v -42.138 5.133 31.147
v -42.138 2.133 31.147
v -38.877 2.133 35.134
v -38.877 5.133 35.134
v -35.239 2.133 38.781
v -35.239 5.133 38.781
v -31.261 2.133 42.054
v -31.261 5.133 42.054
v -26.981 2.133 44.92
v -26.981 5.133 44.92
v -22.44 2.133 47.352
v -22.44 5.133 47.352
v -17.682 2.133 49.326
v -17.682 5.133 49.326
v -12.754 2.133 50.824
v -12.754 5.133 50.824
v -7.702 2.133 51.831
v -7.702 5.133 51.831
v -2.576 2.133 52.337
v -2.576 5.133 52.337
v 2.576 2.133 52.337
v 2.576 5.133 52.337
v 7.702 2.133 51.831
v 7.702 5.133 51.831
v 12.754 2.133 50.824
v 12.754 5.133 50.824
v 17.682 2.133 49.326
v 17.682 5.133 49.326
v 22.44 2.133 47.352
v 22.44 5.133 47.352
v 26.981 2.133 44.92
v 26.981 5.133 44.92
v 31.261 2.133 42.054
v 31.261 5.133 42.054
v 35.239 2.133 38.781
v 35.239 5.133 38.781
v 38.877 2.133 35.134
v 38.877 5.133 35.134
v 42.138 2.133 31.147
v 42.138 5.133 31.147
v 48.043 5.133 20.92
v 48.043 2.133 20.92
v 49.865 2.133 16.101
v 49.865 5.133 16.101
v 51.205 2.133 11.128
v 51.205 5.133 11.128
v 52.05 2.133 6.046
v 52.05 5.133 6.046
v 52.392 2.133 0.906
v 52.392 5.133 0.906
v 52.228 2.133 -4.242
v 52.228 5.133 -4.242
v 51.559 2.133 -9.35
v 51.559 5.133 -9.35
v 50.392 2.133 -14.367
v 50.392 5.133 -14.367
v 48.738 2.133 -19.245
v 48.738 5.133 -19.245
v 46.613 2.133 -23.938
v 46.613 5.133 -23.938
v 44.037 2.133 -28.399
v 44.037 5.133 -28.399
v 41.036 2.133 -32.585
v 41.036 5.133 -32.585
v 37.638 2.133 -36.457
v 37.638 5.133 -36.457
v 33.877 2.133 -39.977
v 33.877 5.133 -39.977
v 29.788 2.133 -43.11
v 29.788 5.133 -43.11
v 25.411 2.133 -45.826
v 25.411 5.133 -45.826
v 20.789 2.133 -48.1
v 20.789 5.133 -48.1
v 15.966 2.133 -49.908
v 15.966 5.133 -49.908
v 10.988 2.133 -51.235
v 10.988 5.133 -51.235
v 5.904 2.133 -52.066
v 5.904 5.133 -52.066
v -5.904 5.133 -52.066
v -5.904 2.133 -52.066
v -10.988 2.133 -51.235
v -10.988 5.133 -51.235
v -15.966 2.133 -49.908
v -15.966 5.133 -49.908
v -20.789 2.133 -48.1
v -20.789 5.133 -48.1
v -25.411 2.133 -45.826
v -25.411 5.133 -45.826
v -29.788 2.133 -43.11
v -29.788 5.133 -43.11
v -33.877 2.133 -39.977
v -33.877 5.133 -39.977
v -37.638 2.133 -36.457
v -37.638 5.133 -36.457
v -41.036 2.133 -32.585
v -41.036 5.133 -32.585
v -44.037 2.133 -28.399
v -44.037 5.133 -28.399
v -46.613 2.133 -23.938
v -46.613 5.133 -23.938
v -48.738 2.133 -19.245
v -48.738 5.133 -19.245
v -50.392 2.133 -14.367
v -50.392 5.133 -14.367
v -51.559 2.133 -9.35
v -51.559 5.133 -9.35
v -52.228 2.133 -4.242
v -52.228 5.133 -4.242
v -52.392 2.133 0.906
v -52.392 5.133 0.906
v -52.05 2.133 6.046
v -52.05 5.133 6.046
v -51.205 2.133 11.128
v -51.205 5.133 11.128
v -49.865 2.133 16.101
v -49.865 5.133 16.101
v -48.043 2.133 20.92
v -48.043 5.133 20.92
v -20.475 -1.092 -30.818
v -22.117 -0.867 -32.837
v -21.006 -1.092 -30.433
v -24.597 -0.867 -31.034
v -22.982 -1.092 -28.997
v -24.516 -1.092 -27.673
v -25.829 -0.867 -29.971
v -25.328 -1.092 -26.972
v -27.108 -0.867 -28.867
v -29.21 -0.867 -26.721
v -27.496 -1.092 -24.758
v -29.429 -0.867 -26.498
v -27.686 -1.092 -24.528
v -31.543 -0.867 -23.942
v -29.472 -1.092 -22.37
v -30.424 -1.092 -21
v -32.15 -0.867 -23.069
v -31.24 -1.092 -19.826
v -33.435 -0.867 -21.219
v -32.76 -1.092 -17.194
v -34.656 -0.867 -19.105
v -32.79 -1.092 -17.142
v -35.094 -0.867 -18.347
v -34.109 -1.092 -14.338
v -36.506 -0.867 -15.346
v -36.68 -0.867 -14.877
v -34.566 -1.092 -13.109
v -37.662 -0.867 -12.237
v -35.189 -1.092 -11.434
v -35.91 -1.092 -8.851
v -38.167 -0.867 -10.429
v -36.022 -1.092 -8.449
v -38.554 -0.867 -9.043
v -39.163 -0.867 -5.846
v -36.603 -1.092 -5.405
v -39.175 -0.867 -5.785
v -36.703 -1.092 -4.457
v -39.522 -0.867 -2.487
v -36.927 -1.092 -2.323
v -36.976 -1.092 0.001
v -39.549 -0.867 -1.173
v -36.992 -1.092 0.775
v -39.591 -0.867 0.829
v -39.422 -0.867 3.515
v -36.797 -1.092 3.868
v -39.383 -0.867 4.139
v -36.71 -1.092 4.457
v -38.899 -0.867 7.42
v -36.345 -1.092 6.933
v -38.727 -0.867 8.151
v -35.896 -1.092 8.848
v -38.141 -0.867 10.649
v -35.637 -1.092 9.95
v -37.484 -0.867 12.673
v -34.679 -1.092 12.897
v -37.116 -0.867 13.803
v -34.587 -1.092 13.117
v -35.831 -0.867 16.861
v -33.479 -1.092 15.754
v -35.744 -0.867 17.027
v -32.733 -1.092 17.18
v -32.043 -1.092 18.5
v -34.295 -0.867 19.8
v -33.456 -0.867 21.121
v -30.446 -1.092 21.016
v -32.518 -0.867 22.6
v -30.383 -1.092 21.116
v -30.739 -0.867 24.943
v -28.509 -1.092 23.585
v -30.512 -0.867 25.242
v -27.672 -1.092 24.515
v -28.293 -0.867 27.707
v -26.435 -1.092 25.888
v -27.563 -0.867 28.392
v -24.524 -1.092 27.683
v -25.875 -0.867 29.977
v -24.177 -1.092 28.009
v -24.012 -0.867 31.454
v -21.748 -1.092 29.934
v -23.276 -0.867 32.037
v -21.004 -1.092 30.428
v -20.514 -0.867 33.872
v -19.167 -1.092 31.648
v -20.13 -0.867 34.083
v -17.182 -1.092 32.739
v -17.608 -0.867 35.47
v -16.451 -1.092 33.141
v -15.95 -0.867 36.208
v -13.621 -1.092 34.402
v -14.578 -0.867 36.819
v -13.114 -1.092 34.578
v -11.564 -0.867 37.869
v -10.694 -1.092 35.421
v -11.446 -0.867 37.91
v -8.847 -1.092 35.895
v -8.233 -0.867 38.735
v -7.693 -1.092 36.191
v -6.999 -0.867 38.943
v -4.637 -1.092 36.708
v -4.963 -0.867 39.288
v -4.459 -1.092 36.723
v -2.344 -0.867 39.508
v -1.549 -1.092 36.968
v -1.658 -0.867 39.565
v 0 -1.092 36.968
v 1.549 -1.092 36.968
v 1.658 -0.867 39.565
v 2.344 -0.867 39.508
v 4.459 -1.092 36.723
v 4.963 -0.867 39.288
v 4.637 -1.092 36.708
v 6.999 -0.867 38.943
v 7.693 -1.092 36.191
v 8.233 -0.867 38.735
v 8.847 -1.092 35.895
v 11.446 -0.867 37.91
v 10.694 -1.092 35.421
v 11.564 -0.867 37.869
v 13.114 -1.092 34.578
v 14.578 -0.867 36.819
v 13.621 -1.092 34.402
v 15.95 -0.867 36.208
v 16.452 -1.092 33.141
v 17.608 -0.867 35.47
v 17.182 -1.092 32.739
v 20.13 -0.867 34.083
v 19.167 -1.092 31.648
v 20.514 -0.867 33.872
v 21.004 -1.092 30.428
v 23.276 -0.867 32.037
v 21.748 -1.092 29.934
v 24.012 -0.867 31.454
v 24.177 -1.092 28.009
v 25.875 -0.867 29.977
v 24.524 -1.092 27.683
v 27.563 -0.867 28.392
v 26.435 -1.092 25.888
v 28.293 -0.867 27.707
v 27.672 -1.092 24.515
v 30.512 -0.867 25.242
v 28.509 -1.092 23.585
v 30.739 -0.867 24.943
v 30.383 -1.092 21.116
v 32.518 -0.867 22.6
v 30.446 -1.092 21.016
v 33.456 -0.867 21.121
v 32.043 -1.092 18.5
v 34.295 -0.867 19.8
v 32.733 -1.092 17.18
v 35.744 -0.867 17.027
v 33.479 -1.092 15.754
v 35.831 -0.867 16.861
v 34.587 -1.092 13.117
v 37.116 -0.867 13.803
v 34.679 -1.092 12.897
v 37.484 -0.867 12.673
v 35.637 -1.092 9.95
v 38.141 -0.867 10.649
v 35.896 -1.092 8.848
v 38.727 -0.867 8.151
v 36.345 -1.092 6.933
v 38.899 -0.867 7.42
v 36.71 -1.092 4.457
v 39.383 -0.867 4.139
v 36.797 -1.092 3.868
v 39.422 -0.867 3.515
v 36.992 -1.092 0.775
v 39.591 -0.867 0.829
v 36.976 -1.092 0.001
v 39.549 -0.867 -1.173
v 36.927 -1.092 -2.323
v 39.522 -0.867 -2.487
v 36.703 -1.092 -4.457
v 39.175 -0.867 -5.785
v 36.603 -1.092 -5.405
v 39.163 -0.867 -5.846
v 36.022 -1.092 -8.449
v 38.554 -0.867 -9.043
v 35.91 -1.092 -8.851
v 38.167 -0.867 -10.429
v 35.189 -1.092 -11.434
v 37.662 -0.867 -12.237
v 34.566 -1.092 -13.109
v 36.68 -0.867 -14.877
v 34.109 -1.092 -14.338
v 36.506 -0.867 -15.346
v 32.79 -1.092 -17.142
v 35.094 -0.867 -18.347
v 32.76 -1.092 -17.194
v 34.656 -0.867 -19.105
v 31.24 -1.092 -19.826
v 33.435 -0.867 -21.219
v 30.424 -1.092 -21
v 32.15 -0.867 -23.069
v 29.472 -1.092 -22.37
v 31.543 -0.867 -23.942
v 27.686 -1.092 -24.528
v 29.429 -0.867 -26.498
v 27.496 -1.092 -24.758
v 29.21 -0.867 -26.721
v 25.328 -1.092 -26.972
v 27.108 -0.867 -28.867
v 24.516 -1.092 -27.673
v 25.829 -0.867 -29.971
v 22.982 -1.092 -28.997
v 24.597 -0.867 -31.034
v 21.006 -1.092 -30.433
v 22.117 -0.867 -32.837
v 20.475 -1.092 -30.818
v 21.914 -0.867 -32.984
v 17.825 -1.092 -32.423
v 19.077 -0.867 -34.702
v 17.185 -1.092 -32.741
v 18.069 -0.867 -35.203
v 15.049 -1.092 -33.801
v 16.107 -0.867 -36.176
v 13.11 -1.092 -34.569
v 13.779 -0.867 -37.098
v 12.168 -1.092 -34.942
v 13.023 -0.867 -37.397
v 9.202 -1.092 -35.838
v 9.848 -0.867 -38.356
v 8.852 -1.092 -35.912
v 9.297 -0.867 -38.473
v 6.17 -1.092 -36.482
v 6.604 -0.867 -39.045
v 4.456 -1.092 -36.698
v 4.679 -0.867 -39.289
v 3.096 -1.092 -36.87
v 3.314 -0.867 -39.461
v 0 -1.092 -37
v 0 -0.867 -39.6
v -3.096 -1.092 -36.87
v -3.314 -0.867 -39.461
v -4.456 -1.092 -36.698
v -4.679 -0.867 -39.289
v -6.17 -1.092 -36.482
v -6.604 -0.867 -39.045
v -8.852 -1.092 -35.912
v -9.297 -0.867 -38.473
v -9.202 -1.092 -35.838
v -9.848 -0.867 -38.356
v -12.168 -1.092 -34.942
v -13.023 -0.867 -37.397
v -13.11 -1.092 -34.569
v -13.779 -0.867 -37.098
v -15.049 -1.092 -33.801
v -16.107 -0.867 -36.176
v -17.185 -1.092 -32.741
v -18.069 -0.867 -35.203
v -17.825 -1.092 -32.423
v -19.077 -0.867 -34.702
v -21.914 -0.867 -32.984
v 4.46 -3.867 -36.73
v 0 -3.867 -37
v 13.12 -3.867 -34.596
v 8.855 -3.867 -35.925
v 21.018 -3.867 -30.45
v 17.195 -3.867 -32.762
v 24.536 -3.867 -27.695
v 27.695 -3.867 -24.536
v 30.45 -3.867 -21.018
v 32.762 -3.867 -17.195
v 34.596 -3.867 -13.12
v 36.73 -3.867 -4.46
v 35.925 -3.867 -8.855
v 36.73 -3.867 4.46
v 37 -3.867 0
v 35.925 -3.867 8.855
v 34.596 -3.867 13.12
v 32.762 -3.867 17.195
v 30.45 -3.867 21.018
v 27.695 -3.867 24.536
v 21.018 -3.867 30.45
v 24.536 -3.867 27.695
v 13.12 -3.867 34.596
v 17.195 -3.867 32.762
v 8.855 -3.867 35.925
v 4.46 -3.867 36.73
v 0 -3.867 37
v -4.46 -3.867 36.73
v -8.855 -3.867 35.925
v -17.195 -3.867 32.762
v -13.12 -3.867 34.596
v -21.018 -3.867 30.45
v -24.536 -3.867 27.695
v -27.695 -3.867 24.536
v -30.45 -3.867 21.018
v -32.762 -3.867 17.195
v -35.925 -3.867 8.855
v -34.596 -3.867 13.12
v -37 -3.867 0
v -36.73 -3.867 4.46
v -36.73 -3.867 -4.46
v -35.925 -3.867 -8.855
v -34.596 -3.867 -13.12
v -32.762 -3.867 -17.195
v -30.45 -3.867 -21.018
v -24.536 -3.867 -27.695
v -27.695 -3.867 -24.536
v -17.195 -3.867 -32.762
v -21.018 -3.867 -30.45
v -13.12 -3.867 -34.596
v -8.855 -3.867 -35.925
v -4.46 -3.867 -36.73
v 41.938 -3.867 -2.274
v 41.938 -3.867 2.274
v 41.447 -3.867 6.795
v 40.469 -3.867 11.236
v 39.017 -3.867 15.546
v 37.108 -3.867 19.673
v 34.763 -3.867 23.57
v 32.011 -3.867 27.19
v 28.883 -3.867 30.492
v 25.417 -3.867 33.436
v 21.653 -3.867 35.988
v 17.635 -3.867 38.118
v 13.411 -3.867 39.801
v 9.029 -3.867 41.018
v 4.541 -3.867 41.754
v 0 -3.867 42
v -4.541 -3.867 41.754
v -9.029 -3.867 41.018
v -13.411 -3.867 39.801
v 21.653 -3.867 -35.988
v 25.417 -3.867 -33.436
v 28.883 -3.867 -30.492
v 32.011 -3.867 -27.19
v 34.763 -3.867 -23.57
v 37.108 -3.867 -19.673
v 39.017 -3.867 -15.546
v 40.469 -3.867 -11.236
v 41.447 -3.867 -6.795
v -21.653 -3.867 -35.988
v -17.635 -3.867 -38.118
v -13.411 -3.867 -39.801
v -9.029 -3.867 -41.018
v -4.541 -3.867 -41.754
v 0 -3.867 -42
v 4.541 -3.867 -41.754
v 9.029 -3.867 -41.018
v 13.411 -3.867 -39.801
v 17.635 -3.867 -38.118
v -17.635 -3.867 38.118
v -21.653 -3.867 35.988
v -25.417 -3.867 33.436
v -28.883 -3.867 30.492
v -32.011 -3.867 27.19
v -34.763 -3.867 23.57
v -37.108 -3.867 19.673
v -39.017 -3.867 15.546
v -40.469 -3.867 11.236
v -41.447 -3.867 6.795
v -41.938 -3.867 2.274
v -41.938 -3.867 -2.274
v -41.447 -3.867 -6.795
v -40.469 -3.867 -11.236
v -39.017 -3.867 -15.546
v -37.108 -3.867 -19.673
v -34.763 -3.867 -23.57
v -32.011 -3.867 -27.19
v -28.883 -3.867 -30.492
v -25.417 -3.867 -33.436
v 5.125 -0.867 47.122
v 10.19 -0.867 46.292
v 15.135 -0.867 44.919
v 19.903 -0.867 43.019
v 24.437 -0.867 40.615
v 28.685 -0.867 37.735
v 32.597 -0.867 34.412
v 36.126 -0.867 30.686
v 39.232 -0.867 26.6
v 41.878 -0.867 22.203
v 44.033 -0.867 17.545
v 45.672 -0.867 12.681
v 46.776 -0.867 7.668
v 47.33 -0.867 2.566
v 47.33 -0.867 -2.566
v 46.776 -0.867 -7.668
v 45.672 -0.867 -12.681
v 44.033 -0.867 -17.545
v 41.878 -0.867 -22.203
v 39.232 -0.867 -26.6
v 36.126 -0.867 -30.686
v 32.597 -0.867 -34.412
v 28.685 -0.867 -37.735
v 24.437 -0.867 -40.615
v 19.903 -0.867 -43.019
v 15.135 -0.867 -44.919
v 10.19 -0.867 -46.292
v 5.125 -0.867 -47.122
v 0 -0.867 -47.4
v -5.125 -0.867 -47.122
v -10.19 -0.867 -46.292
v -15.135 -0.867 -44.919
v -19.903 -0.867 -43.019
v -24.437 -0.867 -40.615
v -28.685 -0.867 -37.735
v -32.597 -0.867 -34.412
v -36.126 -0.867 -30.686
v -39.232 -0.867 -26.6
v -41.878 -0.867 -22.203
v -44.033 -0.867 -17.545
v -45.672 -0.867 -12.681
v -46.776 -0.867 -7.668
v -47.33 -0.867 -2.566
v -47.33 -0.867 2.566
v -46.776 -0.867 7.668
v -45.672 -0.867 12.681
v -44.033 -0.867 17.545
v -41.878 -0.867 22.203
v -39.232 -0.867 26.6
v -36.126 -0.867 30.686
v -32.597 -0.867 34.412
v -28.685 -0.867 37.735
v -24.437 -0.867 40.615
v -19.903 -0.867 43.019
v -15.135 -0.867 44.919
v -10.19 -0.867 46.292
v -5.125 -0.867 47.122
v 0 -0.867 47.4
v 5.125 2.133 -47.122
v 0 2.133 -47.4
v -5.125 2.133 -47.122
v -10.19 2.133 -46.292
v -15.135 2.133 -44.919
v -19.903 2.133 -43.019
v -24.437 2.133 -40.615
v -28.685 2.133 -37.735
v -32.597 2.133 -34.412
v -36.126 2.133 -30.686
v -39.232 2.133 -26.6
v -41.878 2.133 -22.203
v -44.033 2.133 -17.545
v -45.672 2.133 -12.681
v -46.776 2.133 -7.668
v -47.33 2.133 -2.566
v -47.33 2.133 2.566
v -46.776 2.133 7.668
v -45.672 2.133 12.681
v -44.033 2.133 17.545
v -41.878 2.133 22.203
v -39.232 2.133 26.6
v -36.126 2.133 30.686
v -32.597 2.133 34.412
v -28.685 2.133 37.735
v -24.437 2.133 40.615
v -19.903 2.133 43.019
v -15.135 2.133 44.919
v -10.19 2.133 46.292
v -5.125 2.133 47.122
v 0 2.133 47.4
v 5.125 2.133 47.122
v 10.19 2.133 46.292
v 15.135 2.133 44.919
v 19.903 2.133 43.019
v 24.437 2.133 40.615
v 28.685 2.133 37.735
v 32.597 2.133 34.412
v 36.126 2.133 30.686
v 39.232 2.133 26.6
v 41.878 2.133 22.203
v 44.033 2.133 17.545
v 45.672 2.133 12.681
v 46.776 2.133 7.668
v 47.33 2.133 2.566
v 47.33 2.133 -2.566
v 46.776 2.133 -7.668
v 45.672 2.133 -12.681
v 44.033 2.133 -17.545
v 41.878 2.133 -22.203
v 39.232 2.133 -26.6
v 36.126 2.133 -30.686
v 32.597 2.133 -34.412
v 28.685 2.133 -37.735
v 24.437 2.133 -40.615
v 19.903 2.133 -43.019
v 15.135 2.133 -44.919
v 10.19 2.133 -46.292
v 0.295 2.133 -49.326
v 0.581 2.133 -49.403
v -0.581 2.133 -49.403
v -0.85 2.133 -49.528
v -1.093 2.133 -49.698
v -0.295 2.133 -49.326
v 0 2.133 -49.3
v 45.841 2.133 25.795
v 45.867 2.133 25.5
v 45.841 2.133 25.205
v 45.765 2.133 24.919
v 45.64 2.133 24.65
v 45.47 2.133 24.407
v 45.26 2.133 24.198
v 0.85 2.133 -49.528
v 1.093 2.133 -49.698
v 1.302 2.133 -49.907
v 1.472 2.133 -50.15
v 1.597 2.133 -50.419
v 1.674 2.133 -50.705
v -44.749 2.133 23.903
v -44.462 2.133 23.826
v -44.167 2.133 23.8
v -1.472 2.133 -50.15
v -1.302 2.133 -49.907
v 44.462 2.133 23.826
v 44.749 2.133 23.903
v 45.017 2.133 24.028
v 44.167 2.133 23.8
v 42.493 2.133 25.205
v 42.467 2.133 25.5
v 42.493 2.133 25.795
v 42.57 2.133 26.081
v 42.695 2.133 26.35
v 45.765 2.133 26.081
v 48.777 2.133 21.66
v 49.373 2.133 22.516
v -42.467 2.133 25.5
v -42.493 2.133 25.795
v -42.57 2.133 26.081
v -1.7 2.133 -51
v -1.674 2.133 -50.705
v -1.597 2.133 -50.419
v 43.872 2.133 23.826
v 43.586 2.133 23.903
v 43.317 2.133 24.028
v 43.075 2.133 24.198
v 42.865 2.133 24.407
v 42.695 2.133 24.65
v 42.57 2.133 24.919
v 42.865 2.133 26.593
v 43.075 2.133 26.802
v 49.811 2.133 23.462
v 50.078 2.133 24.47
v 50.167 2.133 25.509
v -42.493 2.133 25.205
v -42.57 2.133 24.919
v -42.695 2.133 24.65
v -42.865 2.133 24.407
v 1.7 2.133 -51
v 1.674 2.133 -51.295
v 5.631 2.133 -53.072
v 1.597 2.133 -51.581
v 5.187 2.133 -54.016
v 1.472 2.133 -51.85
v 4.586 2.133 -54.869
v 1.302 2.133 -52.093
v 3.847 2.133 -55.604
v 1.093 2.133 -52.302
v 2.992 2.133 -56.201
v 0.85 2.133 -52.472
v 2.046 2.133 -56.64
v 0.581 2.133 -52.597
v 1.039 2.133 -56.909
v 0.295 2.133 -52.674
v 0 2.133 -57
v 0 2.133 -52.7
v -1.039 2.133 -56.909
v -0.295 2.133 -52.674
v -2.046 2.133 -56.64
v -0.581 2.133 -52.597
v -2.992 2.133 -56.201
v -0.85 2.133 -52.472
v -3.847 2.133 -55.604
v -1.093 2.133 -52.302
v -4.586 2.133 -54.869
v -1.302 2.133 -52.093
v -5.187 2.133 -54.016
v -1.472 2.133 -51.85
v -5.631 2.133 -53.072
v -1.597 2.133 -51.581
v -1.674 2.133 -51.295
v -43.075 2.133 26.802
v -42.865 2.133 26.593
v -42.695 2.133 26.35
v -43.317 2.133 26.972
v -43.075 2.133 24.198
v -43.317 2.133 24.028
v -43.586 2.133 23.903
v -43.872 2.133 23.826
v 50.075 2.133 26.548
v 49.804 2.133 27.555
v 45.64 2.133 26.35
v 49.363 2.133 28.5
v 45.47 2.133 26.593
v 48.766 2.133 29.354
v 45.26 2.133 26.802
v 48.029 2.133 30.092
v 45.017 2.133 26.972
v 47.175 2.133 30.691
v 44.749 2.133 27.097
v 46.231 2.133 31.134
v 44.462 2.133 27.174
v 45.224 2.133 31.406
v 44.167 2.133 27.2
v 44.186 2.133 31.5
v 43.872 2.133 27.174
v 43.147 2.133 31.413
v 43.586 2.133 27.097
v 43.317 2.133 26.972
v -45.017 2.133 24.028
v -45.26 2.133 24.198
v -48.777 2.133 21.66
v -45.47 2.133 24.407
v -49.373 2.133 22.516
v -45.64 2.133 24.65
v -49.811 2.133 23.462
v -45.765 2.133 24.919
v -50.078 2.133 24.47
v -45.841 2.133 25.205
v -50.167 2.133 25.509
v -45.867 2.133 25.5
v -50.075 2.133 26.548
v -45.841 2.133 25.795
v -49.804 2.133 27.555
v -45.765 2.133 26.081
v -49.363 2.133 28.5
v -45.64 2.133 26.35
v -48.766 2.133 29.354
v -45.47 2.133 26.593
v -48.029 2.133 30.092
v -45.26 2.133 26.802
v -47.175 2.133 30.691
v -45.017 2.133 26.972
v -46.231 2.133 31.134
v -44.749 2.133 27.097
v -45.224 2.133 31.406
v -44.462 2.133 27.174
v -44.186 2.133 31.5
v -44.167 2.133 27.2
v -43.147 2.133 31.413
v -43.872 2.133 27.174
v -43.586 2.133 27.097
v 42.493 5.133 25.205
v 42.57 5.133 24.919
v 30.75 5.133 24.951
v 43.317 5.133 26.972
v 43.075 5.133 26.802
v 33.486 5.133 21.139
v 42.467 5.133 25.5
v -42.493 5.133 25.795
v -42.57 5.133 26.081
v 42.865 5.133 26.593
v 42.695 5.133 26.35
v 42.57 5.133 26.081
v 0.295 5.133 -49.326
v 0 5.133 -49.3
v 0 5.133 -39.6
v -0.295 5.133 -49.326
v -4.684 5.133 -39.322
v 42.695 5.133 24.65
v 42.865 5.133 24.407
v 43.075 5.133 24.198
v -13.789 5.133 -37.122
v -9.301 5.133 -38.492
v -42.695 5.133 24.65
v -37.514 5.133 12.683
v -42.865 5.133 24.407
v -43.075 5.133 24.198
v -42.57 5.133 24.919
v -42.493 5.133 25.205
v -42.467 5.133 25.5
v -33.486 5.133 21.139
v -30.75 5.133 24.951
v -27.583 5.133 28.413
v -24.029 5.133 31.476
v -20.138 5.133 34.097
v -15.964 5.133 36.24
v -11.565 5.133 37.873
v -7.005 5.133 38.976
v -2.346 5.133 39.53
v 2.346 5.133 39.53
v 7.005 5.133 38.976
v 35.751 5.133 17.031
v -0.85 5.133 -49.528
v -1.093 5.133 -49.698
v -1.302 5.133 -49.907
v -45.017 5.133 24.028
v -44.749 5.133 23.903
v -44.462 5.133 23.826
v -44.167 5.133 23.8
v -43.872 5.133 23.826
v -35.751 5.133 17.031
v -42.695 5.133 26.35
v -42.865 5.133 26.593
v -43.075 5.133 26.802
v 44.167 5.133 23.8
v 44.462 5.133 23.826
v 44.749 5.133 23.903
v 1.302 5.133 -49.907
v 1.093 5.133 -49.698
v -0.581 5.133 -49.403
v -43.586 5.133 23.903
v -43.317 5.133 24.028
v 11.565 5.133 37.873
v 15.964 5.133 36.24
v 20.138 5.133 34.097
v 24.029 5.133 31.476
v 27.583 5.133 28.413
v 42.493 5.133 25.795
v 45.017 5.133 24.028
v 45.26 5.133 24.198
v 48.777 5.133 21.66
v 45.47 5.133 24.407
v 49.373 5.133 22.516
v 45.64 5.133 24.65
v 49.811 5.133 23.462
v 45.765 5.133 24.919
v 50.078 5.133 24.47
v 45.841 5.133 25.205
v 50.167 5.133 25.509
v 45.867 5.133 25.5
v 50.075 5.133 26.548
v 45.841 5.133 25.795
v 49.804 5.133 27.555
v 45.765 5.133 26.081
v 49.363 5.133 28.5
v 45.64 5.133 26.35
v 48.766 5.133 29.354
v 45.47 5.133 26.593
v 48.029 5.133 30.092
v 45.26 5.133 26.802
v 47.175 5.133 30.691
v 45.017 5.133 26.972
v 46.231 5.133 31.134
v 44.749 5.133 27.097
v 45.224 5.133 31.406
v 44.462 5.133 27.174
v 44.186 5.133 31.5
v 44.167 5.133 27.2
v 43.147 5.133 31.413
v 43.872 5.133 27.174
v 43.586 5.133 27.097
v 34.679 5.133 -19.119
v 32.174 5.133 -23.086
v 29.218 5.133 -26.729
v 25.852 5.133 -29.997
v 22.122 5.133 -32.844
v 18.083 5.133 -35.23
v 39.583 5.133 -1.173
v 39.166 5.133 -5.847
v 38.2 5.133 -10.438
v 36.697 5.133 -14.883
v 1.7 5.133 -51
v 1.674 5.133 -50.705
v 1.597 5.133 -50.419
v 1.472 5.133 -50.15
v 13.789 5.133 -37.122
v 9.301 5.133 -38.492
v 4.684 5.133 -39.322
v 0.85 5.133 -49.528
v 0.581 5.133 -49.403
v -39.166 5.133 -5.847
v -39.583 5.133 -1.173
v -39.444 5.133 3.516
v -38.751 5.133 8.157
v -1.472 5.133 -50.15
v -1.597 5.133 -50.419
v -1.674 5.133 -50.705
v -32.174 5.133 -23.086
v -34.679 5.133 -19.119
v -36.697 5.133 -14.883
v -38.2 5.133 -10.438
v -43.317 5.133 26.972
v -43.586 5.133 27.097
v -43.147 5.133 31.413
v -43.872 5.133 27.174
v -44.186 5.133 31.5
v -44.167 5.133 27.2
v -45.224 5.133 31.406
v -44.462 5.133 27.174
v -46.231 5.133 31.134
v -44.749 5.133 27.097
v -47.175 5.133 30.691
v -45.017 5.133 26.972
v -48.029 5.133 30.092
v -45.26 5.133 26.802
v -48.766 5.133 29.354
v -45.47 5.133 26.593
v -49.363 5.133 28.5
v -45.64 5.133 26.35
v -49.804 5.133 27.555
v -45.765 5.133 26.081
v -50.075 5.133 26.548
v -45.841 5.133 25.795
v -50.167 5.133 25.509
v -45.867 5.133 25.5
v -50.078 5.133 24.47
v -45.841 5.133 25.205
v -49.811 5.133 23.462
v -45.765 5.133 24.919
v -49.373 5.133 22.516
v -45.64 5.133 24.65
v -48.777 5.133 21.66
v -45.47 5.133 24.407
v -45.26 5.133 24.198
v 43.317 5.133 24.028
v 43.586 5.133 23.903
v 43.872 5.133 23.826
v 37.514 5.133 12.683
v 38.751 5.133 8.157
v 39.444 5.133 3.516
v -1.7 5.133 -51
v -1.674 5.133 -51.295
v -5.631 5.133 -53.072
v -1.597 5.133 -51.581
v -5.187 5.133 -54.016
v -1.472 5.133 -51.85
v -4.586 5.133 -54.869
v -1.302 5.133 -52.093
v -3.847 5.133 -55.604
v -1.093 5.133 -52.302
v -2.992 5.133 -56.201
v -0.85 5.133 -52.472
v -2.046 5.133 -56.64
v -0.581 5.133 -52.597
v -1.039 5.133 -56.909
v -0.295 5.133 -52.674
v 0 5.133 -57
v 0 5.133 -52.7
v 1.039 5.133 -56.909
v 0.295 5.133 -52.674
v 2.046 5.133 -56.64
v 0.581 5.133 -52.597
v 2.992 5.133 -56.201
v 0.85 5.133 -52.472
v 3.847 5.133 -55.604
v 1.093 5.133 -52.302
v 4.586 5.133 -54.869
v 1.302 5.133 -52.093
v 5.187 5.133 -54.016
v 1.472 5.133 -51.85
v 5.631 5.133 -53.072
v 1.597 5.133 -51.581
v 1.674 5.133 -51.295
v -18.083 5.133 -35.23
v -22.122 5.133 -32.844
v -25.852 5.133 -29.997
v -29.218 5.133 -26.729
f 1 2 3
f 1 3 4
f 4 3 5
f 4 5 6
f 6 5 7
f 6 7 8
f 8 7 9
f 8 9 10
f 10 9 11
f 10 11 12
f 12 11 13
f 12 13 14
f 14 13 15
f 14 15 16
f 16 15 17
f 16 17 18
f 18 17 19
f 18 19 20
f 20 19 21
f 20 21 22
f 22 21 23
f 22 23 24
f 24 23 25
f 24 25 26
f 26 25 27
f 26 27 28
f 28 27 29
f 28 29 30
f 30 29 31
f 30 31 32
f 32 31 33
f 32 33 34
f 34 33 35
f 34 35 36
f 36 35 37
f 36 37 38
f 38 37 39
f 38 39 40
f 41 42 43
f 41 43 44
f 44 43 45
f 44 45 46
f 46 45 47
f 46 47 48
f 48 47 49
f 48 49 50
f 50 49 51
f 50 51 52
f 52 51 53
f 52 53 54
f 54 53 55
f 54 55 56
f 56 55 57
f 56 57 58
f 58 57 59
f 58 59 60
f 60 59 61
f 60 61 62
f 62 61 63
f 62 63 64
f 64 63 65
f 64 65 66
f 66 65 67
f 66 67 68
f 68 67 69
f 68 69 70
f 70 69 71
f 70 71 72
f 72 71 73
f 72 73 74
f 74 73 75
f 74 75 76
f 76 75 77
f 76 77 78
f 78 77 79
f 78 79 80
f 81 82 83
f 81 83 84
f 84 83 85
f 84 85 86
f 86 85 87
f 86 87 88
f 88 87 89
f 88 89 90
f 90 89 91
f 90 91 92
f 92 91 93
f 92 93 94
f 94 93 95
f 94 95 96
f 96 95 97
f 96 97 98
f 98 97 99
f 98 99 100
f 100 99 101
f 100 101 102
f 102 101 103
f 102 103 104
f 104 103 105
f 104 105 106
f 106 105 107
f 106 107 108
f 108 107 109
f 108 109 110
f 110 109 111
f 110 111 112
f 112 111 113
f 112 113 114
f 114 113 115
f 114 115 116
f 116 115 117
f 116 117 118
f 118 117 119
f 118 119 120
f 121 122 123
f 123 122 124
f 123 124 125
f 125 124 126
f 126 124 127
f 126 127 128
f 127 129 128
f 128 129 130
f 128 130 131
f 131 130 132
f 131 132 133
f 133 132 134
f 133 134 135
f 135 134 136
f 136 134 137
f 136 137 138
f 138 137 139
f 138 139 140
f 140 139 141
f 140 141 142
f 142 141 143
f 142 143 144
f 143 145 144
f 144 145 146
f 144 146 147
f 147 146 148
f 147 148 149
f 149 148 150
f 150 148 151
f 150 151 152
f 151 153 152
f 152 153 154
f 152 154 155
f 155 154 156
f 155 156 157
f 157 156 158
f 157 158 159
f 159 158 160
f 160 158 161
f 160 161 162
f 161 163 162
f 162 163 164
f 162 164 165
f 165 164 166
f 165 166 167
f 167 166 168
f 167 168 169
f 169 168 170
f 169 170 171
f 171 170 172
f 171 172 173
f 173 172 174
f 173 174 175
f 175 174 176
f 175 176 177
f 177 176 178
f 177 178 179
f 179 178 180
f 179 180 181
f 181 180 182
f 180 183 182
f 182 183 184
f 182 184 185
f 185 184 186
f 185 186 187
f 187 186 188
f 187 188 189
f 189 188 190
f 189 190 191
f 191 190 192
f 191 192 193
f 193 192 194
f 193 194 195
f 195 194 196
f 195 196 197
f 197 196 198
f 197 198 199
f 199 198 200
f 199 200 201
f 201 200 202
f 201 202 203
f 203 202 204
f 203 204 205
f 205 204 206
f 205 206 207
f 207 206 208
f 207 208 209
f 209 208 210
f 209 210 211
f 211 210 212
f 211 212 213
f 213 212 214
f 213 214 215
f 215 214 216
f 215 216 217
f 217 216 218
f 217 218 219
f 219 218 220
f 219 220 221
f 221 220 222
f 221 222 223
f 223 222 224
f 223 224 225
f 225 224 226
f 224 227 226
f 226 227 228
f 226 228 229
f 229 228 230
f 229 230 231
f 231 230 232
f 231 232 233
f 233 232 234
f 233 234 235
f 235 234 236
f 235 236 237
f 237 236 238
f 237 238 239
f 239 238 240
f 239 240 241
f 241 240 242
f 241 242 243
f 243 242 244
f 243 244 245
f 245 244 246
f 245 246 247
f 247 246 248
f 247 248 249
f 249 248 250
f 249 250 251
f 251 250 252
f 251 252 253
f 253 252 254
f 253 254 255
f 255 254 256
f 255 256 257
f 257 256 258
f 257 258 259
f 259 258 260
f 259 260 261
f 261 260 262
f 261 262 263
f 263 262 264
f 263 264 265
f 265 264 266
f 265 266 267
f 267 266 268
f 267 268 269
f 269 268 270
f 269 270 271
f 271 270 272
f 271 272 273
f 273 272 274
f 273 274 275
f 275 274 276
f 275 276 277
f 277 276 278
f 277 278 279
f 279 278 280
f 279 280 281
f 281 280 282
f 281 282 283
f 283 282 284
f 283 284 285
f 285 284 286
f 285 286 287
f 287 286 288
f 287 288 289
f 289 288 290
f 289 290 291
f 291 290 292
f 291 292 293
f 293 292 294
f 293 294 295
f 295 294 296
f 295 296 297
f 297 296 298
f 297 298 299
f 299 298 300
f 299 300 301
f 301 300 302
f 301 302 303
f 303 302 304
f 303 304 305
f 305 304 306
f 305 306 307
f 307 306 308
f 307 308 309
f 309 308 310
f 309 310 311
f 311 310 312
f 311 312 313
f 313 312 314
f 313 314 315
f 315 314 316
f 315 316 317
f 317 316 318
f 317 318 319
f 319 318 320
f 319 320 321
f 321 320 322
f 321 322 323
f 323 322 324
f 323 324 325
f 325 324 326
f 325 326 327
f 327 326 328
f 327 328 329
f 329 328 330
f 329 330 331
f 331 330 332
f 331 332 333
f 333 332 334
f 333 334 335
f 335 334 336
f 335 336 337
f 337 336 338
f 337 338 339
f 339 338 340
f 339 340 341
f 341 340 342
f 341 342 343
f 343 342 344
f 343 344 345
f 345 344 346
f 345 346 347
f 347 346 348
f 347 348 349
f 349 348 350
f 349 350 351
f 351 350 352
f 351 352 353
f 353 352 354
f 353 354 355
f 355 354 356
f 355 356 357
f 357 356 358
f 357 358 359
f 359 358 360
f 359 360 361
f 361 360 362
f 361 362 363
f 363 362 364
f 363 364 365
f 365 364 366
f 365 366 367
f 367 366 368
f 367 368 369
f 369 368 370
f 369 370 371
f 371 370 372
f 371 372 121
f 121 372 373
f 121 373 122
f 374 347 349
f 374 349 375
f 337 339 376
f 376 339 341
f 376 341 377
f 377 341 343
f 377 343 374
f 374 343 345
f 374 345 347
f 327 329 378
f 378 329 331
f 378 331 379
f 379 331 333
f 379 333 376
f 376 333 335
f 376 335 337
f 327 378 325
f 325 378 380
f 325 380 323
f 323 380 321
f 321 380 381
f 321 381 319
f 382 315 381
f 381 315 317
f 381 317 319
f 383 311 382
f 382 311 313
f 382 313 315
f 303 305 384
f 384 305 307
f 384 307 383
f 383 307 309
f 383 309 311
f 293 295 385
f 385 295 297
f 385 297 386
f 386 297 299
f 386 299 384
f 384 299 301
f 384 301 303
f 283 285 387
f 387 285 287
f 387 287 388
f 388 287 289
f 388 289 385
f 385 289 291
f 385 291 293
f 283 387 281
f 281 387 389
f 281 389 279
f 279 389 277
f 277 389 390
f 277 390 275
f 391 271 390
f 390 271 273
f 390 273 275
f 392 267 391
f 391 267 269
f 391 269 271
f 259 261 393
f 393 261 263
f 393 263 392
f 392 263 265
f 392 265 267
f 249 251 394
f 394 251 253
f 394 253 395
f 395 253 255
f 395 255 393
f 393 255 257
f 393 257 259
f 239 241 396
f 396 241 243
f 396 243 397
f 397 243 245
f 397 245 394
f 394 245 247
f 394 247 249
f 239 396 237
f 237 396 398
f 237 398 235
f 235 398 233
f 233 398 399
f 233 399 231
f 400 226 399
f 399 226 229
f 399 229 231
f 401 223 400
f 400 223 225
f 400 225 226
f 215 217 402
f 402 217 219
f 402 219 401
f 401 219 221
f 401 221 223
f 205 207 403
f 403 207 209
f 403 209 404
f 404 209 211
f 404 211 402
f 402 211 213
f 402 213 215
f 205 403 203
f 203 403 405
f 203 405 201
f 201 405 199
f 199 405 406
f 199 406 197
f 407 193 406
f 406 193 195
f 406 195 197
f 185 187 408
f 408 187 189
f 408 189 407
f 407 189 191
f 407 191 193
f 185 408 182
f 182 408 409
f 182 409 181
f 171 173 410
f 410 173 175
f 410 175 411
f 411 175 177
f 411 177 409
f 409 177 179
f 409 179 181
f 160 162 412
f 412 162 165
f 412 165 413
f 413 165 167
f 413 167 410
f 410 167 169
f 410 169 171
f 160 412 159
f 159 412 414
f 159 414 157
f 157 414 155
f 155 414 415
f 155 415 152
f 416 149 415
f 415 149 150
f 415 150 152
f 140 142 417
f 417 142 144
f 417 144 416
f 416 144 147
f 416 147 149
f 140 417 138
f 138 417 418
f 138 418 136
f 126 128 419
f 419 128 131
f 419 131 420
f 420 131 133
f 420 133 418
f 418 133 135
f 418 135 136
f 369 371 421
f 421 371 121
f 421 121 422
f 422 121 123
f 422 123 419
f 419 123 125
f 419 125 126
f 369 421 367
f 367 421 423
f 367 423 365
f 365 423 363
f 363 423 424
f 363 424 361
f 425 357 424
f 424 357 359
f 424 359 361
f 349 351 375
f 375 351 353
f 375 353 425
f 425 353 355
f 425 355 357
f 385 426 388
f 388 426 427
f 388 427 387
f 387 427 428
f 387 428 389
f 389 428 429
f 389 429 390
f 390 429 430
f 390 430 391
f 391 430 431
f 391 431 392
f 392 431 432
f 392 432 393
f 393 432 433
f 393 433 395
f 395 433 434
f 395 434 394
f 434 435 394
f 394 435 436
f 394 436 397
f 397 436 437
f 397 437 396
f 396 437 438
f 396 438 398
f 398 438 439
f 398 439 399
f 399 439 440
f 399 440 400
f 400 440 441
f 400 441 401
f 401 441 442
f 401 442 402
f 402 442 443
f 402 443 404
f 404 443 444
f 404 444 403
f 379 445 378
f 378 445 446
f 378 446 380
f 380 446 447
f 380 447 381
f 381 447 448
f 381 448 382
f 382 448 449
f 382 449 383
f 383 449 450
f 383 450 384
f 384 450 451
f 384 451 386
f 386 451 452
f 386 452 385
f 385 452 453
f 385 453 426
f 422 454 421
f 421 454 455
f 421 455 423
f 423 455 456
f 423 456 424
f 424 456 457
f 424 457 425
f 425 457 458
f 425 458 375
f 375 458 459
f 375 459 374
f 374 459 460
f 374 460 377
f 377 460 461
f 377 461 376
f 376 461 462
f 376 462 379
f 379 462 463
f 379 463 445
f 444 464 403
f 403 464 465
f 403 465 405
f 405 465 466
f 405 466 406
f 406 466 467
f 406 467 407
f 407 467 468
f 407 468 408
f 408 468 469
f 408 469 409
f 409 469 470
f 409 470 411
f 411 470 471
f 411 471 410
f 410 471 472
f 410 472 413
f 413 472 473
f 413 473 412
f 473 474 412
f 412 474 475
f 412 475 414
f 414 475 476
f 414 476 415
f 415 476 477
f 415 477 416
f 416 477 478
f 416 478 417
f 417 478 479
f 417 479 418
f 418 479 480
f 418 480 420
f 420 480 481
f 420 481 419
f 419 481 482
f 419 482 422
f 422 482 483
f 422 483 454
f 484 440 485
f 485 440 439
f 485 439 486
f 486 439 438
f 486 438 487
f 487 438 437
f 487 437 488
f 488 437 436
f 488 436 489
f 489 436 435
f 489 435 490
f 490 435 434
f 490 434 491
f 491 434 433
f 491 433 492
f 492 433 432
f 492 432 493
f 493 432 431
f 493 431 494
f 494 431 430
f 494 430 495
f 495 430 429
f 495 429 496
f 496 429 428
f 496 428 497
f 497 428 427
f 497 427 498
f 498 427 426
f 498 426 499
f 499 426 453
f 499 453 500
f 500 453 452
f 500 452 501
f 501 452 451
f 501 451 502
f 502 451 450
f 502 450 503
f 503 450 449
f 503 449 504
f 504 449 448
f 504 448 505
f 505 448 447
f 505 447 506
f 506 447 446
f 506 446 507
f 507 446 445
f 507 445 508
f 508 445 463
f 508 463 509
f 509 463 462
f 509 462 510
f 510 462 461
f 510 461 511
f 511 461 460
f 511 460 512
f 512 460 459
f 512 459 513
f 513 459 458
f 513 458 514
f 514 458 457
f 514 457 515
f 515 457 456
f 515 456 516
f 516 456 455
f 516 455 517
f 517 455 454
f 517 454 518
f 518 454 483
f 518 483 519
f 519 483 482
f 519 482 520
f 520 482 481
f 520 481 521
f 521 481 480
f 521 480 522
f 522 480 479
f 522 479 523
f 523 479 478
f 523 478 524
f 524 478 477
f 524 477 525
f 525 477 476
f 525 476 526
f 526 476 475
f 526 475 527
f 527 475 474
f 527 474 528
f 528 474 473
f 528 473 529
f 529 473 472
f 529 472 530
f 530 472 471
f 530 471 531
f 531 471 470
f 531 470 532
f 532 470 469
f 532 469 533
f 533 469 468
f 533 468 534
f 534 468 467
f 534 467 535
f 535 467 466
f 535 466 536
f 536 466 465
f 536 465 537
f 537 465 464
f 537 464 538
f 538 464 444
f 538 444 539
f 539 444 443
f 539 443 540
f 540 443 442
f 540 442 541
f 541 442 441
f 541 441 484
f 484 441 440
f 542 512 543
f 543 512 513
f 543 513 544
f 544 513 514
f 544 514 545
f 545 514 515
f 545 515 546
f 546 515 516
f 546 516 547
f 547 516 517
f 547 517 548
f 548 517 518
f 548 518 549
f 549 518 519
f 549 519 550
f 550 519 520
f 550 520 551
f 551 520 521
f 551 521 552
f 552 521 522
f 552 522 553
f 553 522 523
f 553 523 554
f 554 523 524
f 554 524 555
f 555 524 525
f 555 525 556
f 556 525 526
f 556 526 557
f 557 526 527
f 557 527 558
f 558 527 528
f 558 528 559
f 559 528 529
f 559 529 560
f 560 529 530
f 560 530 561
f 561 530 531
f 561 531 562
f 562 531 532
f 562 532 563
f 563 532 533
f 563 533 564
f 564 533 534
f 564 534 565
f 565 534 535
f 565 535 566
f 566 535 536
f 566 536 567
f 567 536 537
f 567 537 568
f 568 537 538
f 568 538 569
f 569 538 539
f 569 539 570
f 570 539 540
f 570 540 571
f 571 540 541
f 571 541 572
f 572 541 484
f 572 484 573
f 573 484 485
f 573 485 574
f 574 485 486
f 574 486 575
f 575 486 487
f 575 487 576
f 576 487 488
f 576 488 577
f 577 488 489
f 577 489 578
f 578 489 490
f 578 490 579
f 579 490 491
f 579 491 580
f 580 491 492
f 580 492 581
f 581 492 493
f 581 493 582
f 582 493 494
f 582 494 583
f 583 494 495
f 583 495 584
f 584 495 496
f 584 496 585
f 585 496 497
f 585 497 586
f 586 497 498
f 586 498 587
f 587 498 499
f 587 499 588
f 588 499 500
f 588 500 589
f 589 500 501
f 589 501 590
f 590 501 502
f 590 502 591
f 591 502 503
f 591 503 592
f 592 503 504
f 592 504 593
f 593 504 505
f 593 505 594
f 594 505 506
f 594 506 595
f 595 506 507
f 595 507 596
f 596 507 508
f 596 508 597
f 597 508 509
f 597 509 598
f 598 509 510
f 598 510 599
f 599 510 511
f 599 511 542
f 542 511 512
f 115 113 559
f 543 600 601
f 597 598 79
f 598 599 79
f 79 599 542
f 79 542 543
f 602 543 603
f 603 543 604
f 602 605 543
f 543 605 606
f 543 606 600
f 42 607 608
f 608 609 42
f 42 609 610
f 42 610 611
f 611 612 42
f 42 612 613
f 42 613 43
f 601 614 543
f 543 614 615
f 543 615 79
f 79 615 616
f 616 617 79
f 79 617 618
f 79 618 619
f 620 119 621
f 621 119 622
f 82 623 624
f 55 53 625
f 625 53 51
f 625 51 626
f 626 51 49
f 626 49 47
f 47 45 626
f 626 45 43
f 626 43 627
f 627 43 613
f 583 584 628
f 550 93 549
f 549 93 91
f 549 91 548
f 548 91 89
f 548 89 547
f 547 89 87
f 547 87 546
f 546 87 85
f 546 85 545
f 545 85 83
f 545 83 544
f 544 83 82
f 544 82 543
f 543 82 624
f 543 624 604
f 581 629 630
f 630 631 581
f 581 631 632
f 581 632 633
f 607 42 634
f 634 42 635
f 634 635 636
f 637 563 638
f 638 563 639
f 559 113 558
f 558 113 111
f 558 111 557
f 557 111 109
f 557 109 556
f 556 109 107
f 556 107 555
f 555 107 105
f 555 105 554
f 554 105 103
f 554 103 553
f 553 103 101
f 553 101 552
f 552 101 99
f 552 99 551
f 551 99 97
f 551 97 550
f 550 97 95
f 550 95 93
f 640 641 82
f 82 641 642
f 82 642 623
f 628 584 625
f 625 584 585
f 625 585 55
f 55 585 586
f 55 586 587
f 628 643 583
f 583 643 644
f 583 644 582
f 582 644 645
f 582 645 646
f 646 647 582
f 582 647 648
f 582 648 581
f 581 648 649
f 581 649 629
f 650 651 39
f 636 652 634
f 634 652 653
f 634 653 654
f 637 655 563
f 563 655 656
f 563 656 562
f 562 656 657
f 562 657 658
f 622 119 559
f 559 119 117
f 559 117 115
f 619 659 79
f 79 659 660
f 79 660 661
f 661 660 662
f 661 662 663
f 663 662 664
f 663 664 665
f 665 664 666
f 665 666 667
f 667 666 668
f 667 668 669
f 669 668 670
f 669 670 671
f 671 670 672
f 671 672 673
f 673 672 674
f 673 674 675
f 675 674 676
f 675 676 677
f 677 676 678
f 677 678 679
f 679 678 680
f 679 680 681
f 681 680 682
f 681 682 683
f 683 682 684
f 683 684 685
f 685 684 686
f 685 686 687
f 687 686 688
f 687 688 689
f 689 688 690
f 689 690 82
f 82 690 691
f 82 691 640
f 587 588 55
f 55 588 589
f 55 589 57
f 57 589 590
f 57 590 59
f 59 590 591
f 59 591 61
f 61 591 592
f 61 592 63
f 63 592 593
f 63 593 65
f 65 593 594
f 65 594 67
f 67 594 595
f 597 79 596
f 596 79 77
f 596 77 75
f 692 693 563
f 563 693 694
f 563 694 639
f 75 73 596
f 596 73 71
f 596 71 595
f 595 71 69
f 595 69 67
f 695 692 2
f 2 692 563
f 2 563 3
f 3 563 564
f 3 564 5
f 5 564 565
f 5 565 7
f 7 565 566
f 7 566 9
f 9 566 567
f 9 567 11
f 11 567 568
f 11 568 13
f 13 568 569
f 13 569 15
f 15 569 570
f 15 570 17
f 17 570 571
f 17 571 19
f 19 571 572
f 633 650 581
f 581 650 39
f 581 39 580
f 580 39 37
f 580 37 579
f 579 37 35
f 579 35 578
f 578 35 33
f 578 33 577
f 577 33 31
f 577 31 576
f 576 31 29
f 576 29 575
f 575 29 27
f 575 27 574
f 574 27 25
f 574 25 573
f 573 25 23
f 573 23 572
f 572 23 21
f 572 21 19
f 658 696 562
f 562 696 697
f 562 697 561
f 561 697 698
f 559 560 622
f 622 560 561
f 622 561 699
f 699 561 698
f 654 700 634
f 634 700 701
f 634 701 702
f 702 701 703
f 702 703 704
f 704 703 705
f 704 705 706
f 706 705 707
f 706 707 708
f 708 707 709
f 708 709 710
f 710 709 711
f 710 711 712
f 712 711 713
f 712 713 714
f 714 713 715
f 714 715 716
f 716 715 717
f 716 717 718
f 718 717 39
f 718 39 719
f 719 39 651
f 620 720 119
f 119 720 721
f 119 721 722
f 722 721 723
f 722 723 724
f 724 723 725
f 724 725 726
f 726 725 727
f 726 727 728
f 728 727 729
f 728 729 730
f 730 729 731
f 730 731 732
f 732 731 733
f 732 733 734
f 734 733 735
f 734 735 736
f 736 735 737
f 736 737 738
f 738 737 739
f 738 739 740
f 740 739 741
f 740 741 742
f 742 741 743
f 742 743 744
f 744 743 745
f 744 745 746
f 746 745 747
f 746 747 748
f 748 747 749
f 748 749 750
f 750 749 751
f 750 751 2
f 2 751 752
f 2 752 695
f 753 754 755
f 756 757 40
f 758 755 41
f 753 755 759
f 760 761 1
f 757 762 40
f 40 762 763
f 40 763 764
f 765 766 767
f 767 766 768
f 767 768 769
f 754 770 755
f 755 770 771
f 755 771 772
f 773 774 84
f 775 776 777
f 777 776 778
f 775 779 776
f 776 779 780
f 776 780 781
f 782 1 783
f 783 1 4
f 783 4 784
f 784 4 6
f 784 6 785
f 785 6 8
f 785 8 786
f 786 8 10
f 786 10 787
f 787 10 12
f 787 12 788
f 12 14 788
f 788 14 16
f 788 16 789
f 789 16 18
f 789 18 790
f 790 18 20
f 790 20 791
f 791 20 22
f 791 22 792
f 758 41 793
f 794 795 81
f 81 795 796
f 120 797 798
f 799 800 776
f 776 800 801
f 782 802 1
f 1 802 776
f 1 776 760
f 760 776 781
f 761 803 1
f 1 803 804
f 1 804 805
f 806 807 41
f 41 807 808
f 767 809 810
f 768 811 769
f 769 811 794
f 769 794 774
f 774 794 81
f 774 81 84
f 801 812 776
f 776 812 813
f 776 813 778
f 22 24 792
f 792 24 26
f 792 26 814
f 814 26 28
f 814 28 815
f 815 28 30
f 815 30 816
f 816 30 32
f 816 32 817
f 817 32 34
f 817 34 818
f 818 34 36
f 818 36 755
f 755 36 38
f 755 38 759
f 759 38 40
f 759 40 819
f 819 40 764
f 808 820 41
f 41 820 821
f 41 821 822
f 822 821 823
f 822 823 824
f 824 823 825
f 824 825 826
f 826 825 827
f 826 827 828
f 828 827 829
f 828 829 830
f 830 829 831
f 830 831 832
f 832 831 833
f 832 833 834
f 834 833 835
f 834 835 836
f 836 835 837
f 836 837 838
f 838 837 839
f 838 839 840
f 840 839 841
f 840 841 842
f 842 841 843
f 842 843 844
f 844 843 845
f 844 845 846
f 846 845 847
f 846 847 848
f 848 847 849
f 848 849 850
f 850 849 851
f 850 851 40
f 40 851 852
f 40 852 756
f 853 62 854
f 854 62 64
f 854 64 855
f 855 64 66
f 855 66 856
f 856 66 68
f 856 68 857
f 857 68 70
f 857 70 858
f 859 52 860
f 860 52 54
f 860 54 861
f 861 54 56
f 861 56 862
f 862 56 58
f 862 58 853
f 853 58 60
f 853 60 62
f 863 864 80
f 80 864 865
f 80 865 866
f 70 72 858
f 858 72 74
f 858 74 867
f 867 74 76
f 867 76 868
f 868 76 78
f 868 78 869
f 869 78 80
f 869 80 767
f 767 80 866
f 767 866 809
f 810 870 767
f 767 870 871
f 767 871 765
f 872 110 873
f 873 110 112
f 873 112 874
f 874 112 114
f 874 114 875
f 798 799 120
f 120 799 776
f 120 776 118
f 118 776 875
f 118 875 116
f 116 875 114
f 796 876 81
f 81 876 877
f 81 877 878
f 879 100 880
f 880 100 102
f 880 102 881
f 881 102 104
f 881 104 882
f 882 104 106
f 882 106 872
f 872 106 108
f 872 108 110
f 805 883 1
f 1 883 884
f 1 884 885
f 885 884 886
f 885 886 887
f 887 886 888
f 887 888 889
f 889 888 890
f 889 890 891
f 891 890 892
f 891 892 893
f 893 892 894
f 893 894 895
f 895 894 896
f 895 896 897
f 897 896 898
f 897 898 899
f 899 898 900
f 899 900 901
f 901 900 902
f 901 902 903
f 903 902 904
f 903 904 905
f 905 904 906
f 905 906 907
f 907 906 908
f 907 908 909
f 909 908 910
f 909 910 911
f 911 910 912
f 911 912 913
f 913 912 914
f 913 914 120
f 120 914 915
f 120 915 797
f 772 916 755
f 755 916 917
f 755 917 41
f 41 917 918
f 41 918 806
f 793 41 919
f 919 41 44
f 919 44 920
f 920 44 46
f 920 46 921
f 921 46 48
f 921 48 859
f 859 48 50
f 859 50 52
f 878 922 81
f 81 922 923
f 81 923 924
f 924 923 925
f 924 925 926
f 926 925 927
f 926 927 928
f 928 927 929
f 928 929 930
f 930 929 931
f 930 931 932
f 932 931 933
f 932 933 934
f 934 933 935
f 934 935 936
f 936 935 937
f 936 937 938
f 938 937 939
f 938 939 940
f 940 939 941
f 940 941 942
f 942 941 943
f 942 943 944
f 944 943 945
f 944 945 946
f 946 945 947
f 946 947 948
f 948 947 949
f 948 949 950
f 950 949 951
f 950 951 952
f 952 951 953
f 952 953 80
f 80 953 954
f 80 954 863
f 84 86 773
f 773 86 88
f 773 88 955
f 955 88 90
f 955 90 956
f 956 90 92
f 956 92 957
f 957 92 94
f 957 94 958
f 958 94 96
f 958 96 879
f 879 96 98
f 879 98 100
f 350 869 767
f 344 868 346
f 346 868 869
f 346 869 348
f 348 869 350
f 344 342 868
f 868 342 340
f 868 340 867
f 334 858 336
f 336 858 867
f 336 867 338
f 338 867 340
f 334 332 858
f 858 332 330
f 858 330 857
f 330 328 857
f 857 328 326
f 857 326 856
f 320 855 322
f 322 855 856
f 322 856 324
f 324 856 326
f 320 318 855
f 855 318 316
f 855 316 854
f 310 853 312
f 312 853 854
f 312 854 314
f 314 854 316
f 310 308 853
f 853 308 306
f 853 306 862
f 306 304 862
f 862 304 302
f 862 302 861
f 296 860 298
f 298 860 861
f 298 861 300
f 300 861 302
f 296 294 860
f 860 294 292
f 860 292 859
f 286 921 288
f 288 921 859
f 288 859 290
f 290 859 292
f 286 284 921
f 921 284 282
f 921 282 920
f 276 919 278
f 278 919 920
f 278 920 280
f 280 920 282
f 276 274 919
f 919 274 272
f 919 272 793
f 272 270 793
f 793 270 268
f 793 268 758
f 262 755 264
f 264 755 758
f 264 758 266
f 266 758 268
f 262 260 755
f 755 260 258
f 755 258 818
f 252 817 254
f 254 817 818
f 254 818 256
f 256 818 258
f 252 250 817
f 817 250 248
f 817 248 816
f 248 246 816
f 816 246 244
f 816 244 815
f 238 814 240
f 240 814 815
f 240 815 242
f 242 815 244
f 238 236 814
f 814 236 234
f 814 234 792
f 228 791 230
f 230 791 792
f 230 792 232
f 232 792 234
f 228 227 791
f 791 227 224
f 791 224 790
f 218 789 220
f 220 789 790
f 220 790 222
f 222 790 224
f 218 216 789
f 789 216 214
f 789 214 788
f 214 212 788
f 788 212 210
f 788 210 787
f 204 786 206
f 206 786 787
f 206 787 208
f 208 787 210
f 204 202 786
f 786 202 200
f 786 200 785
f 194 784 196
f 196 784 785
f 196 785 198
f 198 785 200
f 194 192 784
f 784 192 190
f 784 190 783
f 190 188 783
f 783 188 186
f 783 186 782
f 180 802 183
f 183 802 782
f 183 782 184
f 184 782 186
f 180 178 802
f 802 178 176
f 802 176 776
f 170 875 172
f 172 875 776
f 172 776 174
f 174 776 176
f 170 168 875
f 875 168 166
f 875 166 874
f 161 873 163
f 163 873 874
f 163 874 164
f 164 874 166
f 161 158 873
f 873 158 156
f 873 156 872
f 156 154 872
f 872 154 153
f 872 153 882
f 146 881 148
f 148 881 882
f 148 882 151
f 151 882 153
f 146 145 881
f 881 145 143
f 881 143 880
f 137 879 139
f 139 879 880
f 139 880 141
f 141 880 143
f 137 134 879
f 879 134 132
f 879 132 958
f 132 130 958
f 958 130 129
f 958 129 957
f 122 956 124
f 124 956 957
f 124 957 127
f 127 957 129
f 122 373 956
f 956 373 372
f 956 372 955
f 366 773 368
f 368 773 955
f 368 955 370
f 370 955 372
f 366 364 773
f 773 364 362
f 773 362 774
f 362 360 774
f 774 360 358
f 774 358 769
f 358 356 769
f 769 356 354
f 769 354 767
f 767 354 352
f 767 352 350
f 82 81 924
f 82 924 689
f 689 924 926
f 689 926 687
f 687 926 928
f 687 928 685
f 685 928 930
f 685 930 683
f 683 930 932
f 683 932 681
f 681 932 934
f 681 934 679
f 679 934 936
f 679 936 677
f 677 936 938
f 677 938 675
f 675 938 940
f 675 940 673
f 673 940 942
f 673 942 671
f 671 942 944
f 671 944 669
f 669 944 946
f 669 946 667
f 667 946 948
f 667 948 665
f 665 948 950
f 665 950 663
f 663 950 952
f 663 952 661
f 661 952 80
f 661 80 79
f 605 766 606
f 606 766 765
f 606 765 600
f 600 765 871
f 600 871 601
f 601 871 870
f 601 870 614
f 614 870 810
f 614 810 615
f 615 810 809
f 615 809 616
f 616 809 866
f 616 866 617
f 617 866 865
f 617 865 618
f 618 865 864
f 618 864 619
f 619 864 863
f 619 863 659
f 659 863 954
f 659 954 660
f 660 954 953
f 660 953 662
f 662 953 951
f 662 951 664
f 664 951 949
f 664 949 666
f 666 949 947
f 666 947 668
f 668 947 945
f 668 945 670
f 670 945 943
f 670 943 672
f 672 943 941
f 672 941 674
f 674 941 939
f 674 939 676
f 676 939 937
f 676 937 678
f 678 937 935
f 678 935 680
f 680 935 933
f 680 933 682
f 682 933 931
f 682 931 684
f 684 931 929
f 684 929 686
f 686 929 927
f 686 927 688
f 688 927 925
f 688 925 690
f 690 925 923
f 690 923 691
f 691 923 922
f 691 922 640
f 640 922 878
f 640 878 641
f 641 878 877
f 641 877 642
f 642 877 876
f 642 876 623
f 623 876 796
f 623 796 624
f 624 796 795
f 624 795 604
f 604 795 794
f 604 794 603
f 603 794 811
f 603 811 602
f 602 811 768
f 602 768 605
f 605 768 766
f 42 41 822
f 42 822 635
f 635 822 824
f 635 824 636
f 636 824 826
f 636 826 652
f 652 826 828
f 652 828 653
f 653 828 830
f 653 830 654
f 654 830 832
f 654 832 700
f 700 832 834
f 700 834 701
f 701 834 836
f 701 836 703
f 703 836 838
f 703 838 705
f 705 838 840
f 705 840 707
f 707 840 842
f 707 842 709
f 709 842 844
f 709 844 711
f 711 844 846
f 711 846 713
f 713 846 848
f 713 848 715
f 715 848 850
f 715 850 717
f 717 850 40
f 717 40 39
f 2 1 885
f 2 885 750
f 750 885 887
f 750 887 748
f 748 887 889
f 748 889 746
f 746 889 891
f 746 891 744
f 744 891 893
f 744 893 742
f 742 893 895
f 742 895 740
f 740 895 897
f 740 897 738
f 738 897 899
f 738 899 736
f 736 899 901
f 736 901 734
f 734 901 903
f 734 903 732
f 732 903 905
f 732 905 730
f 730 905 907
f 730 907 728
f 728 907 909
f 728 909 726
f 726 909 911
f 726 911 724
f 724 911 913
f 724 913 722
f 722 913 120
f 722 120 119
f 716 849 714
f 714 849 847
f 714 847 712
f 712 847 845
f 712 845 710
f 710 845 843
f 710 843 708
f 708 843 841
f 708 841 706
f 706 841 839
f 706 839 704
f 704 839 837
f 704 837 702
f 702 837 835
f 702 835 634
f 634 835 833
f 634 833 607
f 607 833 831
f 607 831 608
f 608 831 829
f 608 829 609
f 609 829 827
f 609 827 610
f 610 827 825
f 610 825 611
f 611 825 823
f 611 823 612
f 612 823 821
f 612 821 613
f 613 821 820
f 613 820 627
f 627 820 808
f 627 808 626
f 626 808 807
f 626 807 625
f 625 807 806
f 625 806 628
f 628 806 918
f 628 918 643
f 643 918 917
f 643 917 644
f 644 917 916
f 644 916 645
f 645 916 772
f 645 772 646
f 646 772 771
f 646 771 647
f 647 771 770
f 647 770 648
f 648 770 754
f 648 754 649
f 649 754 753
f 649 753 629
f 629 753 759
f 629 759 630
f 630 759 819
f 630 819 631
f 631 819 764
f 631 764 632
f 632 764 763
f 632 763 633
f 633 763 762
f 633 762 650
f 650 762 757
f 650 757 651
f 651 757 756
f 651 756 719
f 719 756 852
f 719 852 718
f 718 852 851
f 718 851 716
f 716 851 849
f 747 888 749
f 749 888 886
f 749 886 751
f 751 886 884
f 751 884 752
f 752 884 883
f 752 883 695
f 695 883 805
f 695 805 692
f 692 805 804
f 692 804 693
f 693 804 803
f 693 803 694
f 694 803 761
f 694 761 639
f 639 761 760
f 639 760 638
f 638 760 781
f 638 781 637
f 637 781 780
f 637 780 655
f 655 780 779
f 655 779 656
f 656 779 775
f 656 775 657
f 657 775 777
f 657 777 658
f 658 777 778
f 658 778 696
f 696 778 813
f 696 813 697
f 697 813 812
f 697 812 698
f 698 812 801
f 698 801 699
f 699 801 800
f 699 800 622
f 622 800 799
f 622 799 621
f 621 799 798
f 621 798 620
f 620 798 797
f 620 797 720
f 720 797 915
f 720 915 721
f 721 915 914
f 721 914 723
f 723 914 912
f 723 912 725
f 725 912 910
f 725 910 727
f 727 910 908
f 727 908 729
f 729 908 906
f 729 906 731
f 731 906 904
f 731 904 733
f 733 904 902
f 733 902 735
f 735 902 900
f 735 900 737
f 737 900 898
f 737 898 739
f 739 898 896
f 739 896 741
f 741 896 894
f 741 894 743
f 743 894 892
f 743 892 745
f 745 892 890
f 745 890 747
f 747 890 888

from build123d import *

# Parameters (mm, degrees)
BOSS_EXTRU_2_DEPTH           = 3
D_GAGEMENT_M32_D             = 3.4
R_P_TITION_CIRCULAIRE1_COUNT = 3


with BuildPart() as part:
    # Esquisse1 → Révolution1 (revolve)
    with BuildSketch(Plane.XY, mode=Mode.PRIVATE) as r_volution1_sk:
        with BuildLine():
            Line((-39.6, 5.132876041), (-39.6, -0.867123959))
            ThreePointArc((-39.6, -0.867123959), (-38.300433177, -0.984457181), (-37, -1.091763109))
            Line((-37, -1.091763109), (-37, -3.867123959))
            Line((-37, -3.867123959), (-42, -3.867123959))
            Line((-42, -3.867123959), (-47.4, -0.867123959))
            Line((-47.4, -0.867123959), (-47.4, 2.132876041))
            Line((-47.4, 2.132876041), (-52.4, 2.132876041))
            Line((-52.4, 2.132876041), (-52.4, 5.132876041))
            Line((-52.4, 5.132876041), (-39.6, 5.132876041))
        make_face()
    revolve(r_volution1_sk.sketch.rotate(Axis((0, 0, 0), (0, 1, 0)), 270), axis=Axis((0, 0, 0), (0, 1, 0)))

    # Esquisse2 → Boss.-Extru.2 (add)
    with BuildSketch(Plane(origin=(0, 5.132876041, 0), x_dir=(1, 0, 0), z_dir=(0, 1, 0))):
        with BuildLine():
            Line((-5.904494785, 52.06627451), (0, 51))
            Line((0, 51), (5.904494785, 52.06627451))
            ThreePointArc((5.904494785, 52.06627451), (0, 57), (-5.904494785, 52.06627451))
        make_face()
    boss_extru_2 = extrude(amount=-BOSS_EXTRU_2_DEPTH)

    # Dégagement M32 (through all)
    with Locations(Plane(origin=(0, 5.132876041, 0), x_dir=(1, 0, 0), z_dir=(0, 1, 0))):
        with Locations((0, 51)):
            d_gagement_m32 = Hole(D_GAGEMENT_M32_D / 2)

    # Répétition circulaire1: Boss.-Extru.2, Dégagement M32 ×3 about axis
    r_p_tition_circulaire1_axis = Axis((0, 0, 0), (0, 1, 0))
    add([boss_extru_2.rotate(r_p_tition_circulaire1_axis, i * 360 / R_P_TITION_CIRCULAIRE1_COUNT) for i in range(1, R_P_TITION_CIRCULAIRE1_COUNT)])
    add([d_gagement_m32.rotate(r_p_tition_circulaire1_axis, i * 360 / R_P_TITION_CIRCULAIRE1_COUNT) for i in range(1, R_P_TITION_CIRCULAIRE1_COUNT)], mode=Mode.SUBTRACT)


solid = part.part
